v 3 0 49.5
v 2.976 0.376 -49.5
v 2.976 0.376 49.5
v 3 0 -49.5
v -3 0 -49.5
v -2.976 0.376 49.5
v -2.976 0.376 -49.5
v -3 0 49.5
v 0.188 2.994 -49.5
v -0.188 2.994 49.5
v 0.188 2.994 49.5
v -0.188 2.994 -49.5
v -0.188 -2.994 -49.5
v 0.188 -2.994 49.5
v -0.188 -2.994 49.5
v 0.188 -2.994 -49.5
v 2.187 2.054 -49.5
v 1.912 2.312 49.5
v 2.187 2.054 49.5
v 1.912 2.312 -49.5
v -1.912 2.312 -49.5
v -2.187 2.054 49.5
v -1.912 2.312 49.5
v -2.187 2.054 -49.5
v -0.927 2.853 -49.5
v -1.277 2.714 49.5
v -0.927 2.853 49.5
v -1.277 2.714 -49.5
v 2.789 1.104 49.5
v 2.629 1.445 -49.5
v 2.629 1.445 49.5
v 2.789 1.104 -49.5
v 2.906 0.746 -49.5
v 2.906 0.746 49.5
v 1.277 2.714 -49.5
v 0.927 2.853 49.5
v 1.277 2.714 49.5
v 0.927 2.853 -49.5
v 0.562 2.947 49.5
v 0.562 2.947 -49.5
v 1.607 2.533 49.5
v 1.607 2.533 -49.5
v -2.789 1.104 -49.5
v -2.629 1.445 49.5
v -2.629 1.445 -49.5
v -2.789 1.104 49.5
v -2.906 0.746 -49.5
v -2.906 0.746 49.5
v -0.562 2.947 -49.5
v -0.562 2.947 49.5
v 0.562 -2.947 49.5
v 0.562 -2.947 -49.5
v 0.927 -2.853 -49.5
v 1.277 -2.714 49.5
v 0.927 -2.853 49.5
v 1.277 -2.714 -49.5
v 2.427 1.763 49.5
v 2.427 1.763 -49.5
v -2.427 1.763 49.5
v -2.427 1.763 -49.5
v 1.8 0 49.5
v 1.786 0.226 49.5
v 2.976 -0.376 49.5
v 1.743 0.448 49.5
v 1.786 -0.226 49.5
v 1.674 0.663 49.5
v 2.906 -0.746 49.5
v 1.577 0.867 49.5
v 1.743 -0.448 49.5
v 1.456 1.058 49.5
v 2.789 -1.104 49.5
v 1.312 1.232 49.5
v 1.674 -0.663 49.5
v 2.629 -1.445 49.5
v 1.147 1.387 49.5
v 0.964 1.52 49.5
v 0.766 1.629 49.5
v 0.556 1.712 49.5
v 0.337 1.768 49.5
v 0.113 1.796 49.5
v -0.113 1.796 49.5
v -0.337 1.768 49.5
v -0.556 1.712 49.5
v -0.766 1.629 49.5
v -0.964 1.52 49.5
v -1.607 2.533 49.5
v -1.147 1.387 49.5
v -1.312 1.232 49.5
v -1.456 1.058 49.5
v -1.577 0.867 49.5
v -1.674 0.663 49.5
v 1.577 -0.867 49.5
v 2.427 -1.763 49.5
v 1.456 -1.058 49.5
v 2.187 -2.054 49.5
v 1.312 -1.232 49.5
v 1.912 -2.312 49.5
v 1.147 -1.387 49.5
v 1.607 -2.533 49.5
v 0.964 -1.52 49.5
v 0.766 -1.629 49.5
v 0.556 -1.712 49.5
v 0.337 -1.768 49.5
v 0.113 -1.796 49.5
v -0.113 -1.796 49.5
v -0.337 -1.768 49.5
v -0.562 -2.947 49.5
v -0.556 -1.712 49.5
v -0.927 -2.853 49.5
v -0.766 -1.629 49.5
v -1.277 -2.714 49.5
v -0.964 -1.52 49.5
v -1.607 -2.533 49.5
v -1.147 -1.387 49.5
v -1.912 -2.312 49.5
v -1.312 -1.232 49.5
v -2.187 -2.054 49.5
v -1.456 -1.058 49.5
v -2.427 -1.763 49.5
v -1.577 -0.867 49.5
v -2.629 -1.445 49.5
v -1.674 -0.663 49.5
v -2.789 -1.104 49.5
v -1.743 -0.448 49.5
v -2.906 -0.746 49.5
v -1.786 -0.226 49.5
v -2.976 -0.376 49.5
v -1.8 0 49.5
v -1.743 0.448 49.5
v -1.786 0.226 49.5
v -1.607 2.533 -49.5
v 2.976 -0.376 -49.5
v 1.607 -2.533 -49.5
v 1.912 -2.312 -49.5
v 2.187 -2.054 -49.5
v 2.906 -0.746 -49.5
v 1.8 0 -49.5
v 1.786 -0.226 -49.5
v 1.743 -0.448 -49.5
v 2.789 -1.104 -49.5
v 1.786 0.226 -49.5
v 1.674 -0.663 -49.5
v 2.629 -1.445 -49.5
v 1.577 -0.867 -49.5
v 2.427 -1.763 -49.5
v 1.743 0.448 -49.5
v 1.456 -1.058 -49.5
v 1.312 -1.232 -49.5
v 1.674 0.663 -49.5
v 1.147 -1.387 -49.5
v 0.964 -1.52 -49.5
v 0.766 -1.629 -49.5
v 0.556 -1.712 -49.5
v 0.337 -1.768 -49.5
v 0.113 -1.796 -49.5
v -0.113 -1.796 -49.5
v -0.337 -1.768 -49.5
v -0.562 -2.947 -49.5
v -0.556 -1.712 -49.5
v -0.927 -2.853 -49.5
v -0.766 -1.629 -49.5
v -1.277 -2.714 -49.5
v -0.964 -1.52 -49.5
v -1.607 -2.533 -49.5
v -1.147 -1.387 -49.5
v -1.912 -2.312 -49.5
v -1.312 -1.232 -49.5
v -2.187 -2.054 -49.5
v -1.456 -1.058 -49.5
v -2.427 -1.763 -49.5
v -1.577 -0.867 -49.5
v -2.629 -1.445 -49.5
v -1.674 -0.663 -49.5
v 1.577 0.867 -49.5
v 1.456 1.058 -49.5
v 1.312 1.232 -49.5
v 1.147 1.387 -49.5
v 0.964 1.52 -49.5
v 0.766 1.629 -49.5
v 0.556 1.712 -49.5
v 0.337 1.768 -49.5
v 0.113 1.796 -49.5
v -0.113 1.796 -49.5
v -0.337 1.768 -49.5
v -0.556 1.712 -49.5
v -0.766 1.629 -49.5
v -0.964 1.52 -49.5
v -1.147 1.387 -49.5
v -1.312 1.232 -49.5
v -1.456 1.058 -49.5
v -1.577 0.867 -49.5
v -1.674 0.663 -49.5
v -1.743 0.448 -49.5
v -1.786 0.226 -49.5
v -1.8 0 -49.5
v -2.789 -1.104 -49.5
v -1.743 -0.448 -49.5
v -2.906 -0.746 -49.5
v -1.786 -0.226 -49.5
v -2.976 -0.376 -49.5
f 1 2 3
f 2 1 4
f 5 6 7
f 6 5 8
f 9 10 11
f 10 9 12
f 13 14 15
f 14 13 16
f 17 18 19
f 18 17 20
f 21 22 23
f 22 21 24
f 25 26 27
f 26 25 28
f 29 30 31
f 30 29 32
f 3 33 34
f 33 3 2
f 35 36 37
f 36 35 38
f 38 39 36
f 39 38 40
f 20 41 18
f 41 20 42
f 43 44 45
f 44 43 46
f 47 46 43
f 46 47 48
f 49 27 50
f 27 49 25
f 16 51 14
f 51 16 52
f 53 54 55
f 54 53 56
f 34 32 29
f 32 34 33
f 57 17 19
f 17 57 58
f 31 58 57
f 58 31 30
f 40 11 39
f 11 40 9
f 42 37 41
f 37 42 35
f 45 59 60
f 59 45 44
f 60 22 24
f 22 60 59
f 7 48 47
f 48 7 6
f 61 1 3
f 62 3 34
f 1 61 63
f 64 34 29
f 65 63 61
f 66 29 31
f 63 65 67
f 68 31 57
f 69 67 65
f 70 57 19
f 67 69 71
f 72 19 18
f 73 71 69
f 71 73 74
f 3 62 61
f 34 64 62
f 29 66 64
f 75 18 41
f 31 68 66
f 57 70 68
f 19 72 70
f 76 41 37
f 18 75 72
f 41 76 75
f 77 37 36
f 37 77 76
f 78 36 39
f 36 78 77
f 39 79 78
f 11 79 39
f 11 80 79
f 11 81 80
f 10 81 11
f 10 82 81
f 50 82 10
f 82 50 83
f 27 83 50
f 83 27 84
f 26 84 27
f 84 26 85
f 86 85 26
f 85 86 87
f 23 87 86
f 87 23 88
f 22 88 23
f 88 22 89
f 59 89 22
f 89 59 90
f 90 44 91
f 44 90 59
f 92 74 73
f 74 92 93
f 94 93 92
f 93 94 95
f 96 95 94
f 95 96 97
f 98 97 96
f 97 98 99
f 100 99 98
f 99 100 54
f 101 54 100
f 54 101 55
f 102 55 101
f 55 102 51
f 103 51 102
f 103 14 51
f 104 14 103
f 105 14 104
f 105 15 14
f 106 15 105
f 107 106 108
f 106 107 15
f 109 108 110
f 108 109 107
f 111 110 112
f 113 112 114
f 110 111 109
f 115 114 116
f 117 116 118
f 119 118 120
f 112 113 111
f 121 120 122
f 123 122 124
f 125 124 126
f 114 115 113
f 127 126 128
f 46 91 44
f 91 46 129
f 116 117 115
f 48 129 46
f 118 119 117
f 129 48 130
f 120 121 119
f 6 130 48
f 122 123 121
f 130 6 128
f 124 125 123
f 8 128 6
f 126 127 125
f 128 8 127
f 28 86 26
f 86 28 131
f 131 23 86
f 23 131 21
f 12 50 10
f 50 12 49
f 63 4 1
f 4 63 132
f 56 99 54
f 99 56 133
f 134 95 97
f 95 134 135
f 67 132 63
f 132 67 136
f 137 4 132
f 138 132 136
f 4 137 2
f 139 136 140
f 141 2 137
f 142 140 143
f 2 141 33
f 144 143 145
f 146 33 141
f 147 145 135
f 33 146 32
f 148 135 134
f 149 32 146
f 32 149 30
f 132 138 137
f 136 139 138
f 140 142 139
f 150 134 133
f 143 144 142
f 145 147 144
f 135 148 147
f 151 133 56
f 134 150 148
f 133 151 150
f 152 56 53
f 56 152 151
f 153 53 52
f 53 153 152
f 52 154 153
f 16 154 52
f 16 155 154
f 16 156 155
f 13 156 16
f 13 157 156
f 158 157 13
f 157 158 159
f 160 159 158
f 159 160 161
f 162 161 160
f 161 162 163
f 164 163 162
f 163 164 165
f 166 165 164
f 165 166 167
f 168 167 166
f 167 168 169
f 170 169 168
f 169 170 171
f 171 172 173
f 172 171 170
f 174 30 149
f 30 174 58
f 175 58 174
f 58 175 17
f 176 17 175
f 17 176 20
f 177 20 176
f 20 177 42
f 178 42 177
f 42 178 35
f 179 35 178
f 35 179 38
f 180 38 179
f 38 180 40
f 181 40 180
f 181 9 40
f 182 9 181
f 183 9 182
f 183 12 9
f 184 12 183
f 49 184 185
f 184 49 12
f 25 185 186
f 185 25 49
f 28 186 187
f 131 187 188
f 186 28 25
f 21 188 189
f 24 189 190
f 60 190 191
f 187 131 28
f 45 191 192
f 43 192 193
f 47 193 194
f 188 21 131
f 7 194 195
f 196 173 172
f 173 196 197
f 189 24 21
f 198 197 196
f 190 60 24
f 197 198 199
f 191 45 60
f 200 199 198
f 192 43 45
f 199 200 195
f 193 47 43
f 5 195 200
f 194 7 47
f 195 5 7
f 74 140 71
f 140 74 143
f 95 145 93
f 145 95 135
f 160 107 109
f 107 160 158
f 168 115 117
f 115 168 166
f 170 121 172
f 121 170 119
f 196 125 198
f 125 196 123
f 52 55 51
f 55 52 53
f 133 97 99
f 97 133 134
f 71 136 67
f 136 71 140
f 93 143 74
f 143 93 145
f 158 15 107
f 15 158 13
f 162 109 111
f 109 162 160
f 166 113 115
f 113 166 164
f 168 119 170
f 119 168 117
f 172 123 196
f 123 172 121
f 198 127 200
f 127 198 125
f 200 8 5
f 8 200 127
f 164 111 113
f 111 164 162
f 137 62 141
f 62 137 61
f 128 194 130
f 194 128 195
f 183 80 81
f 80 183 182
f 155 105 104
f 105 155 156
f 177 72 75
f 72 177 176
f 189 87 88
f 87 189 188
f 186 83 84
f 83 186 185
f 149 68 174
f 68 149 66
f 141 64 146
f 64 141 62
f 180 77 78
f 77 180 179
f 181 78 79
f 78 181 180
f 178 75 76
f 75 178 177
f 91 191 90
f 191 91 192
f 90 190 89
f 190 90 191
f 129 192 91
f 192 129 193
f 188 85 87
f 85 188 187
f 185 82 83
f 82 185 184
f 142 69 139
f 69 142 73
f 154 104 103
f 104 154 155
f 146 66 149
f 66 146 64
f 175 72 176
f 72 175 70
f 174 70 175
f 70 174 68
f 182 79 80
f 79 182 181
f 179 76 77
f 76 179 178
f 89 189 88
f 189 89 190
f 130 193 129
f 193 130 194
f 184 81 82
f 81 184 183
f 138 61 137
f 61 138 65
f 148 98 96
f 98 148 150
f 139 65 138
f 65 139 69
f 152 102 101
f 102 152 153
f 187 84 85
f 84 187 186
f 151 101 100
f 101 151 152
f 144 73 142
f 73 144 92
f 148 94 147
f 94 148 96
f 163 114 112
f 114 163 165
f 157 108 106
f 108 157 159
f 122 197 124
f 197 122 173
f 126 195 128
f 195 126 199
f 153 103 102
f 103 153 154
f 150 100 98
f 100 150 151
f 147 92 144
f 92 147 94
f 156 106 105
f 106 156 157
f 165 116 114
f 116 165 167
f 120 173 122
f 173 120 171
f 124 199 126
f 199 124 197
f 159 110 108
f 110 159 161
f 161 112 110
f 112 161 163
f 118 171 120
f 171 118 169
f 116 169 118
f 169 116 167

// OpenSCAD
$fn = 50;


difference() {
	union() {
		translate(v = [0, 0, -49.5000000000]) {
			cylinder(h = 99, r = 3.0000000000);
		}
	}
	union() {
		translate(v = [0, 0, -100.0000000000]) {
			cylinder(h = 200, r = 1.8000000000);
		}
	}
}
